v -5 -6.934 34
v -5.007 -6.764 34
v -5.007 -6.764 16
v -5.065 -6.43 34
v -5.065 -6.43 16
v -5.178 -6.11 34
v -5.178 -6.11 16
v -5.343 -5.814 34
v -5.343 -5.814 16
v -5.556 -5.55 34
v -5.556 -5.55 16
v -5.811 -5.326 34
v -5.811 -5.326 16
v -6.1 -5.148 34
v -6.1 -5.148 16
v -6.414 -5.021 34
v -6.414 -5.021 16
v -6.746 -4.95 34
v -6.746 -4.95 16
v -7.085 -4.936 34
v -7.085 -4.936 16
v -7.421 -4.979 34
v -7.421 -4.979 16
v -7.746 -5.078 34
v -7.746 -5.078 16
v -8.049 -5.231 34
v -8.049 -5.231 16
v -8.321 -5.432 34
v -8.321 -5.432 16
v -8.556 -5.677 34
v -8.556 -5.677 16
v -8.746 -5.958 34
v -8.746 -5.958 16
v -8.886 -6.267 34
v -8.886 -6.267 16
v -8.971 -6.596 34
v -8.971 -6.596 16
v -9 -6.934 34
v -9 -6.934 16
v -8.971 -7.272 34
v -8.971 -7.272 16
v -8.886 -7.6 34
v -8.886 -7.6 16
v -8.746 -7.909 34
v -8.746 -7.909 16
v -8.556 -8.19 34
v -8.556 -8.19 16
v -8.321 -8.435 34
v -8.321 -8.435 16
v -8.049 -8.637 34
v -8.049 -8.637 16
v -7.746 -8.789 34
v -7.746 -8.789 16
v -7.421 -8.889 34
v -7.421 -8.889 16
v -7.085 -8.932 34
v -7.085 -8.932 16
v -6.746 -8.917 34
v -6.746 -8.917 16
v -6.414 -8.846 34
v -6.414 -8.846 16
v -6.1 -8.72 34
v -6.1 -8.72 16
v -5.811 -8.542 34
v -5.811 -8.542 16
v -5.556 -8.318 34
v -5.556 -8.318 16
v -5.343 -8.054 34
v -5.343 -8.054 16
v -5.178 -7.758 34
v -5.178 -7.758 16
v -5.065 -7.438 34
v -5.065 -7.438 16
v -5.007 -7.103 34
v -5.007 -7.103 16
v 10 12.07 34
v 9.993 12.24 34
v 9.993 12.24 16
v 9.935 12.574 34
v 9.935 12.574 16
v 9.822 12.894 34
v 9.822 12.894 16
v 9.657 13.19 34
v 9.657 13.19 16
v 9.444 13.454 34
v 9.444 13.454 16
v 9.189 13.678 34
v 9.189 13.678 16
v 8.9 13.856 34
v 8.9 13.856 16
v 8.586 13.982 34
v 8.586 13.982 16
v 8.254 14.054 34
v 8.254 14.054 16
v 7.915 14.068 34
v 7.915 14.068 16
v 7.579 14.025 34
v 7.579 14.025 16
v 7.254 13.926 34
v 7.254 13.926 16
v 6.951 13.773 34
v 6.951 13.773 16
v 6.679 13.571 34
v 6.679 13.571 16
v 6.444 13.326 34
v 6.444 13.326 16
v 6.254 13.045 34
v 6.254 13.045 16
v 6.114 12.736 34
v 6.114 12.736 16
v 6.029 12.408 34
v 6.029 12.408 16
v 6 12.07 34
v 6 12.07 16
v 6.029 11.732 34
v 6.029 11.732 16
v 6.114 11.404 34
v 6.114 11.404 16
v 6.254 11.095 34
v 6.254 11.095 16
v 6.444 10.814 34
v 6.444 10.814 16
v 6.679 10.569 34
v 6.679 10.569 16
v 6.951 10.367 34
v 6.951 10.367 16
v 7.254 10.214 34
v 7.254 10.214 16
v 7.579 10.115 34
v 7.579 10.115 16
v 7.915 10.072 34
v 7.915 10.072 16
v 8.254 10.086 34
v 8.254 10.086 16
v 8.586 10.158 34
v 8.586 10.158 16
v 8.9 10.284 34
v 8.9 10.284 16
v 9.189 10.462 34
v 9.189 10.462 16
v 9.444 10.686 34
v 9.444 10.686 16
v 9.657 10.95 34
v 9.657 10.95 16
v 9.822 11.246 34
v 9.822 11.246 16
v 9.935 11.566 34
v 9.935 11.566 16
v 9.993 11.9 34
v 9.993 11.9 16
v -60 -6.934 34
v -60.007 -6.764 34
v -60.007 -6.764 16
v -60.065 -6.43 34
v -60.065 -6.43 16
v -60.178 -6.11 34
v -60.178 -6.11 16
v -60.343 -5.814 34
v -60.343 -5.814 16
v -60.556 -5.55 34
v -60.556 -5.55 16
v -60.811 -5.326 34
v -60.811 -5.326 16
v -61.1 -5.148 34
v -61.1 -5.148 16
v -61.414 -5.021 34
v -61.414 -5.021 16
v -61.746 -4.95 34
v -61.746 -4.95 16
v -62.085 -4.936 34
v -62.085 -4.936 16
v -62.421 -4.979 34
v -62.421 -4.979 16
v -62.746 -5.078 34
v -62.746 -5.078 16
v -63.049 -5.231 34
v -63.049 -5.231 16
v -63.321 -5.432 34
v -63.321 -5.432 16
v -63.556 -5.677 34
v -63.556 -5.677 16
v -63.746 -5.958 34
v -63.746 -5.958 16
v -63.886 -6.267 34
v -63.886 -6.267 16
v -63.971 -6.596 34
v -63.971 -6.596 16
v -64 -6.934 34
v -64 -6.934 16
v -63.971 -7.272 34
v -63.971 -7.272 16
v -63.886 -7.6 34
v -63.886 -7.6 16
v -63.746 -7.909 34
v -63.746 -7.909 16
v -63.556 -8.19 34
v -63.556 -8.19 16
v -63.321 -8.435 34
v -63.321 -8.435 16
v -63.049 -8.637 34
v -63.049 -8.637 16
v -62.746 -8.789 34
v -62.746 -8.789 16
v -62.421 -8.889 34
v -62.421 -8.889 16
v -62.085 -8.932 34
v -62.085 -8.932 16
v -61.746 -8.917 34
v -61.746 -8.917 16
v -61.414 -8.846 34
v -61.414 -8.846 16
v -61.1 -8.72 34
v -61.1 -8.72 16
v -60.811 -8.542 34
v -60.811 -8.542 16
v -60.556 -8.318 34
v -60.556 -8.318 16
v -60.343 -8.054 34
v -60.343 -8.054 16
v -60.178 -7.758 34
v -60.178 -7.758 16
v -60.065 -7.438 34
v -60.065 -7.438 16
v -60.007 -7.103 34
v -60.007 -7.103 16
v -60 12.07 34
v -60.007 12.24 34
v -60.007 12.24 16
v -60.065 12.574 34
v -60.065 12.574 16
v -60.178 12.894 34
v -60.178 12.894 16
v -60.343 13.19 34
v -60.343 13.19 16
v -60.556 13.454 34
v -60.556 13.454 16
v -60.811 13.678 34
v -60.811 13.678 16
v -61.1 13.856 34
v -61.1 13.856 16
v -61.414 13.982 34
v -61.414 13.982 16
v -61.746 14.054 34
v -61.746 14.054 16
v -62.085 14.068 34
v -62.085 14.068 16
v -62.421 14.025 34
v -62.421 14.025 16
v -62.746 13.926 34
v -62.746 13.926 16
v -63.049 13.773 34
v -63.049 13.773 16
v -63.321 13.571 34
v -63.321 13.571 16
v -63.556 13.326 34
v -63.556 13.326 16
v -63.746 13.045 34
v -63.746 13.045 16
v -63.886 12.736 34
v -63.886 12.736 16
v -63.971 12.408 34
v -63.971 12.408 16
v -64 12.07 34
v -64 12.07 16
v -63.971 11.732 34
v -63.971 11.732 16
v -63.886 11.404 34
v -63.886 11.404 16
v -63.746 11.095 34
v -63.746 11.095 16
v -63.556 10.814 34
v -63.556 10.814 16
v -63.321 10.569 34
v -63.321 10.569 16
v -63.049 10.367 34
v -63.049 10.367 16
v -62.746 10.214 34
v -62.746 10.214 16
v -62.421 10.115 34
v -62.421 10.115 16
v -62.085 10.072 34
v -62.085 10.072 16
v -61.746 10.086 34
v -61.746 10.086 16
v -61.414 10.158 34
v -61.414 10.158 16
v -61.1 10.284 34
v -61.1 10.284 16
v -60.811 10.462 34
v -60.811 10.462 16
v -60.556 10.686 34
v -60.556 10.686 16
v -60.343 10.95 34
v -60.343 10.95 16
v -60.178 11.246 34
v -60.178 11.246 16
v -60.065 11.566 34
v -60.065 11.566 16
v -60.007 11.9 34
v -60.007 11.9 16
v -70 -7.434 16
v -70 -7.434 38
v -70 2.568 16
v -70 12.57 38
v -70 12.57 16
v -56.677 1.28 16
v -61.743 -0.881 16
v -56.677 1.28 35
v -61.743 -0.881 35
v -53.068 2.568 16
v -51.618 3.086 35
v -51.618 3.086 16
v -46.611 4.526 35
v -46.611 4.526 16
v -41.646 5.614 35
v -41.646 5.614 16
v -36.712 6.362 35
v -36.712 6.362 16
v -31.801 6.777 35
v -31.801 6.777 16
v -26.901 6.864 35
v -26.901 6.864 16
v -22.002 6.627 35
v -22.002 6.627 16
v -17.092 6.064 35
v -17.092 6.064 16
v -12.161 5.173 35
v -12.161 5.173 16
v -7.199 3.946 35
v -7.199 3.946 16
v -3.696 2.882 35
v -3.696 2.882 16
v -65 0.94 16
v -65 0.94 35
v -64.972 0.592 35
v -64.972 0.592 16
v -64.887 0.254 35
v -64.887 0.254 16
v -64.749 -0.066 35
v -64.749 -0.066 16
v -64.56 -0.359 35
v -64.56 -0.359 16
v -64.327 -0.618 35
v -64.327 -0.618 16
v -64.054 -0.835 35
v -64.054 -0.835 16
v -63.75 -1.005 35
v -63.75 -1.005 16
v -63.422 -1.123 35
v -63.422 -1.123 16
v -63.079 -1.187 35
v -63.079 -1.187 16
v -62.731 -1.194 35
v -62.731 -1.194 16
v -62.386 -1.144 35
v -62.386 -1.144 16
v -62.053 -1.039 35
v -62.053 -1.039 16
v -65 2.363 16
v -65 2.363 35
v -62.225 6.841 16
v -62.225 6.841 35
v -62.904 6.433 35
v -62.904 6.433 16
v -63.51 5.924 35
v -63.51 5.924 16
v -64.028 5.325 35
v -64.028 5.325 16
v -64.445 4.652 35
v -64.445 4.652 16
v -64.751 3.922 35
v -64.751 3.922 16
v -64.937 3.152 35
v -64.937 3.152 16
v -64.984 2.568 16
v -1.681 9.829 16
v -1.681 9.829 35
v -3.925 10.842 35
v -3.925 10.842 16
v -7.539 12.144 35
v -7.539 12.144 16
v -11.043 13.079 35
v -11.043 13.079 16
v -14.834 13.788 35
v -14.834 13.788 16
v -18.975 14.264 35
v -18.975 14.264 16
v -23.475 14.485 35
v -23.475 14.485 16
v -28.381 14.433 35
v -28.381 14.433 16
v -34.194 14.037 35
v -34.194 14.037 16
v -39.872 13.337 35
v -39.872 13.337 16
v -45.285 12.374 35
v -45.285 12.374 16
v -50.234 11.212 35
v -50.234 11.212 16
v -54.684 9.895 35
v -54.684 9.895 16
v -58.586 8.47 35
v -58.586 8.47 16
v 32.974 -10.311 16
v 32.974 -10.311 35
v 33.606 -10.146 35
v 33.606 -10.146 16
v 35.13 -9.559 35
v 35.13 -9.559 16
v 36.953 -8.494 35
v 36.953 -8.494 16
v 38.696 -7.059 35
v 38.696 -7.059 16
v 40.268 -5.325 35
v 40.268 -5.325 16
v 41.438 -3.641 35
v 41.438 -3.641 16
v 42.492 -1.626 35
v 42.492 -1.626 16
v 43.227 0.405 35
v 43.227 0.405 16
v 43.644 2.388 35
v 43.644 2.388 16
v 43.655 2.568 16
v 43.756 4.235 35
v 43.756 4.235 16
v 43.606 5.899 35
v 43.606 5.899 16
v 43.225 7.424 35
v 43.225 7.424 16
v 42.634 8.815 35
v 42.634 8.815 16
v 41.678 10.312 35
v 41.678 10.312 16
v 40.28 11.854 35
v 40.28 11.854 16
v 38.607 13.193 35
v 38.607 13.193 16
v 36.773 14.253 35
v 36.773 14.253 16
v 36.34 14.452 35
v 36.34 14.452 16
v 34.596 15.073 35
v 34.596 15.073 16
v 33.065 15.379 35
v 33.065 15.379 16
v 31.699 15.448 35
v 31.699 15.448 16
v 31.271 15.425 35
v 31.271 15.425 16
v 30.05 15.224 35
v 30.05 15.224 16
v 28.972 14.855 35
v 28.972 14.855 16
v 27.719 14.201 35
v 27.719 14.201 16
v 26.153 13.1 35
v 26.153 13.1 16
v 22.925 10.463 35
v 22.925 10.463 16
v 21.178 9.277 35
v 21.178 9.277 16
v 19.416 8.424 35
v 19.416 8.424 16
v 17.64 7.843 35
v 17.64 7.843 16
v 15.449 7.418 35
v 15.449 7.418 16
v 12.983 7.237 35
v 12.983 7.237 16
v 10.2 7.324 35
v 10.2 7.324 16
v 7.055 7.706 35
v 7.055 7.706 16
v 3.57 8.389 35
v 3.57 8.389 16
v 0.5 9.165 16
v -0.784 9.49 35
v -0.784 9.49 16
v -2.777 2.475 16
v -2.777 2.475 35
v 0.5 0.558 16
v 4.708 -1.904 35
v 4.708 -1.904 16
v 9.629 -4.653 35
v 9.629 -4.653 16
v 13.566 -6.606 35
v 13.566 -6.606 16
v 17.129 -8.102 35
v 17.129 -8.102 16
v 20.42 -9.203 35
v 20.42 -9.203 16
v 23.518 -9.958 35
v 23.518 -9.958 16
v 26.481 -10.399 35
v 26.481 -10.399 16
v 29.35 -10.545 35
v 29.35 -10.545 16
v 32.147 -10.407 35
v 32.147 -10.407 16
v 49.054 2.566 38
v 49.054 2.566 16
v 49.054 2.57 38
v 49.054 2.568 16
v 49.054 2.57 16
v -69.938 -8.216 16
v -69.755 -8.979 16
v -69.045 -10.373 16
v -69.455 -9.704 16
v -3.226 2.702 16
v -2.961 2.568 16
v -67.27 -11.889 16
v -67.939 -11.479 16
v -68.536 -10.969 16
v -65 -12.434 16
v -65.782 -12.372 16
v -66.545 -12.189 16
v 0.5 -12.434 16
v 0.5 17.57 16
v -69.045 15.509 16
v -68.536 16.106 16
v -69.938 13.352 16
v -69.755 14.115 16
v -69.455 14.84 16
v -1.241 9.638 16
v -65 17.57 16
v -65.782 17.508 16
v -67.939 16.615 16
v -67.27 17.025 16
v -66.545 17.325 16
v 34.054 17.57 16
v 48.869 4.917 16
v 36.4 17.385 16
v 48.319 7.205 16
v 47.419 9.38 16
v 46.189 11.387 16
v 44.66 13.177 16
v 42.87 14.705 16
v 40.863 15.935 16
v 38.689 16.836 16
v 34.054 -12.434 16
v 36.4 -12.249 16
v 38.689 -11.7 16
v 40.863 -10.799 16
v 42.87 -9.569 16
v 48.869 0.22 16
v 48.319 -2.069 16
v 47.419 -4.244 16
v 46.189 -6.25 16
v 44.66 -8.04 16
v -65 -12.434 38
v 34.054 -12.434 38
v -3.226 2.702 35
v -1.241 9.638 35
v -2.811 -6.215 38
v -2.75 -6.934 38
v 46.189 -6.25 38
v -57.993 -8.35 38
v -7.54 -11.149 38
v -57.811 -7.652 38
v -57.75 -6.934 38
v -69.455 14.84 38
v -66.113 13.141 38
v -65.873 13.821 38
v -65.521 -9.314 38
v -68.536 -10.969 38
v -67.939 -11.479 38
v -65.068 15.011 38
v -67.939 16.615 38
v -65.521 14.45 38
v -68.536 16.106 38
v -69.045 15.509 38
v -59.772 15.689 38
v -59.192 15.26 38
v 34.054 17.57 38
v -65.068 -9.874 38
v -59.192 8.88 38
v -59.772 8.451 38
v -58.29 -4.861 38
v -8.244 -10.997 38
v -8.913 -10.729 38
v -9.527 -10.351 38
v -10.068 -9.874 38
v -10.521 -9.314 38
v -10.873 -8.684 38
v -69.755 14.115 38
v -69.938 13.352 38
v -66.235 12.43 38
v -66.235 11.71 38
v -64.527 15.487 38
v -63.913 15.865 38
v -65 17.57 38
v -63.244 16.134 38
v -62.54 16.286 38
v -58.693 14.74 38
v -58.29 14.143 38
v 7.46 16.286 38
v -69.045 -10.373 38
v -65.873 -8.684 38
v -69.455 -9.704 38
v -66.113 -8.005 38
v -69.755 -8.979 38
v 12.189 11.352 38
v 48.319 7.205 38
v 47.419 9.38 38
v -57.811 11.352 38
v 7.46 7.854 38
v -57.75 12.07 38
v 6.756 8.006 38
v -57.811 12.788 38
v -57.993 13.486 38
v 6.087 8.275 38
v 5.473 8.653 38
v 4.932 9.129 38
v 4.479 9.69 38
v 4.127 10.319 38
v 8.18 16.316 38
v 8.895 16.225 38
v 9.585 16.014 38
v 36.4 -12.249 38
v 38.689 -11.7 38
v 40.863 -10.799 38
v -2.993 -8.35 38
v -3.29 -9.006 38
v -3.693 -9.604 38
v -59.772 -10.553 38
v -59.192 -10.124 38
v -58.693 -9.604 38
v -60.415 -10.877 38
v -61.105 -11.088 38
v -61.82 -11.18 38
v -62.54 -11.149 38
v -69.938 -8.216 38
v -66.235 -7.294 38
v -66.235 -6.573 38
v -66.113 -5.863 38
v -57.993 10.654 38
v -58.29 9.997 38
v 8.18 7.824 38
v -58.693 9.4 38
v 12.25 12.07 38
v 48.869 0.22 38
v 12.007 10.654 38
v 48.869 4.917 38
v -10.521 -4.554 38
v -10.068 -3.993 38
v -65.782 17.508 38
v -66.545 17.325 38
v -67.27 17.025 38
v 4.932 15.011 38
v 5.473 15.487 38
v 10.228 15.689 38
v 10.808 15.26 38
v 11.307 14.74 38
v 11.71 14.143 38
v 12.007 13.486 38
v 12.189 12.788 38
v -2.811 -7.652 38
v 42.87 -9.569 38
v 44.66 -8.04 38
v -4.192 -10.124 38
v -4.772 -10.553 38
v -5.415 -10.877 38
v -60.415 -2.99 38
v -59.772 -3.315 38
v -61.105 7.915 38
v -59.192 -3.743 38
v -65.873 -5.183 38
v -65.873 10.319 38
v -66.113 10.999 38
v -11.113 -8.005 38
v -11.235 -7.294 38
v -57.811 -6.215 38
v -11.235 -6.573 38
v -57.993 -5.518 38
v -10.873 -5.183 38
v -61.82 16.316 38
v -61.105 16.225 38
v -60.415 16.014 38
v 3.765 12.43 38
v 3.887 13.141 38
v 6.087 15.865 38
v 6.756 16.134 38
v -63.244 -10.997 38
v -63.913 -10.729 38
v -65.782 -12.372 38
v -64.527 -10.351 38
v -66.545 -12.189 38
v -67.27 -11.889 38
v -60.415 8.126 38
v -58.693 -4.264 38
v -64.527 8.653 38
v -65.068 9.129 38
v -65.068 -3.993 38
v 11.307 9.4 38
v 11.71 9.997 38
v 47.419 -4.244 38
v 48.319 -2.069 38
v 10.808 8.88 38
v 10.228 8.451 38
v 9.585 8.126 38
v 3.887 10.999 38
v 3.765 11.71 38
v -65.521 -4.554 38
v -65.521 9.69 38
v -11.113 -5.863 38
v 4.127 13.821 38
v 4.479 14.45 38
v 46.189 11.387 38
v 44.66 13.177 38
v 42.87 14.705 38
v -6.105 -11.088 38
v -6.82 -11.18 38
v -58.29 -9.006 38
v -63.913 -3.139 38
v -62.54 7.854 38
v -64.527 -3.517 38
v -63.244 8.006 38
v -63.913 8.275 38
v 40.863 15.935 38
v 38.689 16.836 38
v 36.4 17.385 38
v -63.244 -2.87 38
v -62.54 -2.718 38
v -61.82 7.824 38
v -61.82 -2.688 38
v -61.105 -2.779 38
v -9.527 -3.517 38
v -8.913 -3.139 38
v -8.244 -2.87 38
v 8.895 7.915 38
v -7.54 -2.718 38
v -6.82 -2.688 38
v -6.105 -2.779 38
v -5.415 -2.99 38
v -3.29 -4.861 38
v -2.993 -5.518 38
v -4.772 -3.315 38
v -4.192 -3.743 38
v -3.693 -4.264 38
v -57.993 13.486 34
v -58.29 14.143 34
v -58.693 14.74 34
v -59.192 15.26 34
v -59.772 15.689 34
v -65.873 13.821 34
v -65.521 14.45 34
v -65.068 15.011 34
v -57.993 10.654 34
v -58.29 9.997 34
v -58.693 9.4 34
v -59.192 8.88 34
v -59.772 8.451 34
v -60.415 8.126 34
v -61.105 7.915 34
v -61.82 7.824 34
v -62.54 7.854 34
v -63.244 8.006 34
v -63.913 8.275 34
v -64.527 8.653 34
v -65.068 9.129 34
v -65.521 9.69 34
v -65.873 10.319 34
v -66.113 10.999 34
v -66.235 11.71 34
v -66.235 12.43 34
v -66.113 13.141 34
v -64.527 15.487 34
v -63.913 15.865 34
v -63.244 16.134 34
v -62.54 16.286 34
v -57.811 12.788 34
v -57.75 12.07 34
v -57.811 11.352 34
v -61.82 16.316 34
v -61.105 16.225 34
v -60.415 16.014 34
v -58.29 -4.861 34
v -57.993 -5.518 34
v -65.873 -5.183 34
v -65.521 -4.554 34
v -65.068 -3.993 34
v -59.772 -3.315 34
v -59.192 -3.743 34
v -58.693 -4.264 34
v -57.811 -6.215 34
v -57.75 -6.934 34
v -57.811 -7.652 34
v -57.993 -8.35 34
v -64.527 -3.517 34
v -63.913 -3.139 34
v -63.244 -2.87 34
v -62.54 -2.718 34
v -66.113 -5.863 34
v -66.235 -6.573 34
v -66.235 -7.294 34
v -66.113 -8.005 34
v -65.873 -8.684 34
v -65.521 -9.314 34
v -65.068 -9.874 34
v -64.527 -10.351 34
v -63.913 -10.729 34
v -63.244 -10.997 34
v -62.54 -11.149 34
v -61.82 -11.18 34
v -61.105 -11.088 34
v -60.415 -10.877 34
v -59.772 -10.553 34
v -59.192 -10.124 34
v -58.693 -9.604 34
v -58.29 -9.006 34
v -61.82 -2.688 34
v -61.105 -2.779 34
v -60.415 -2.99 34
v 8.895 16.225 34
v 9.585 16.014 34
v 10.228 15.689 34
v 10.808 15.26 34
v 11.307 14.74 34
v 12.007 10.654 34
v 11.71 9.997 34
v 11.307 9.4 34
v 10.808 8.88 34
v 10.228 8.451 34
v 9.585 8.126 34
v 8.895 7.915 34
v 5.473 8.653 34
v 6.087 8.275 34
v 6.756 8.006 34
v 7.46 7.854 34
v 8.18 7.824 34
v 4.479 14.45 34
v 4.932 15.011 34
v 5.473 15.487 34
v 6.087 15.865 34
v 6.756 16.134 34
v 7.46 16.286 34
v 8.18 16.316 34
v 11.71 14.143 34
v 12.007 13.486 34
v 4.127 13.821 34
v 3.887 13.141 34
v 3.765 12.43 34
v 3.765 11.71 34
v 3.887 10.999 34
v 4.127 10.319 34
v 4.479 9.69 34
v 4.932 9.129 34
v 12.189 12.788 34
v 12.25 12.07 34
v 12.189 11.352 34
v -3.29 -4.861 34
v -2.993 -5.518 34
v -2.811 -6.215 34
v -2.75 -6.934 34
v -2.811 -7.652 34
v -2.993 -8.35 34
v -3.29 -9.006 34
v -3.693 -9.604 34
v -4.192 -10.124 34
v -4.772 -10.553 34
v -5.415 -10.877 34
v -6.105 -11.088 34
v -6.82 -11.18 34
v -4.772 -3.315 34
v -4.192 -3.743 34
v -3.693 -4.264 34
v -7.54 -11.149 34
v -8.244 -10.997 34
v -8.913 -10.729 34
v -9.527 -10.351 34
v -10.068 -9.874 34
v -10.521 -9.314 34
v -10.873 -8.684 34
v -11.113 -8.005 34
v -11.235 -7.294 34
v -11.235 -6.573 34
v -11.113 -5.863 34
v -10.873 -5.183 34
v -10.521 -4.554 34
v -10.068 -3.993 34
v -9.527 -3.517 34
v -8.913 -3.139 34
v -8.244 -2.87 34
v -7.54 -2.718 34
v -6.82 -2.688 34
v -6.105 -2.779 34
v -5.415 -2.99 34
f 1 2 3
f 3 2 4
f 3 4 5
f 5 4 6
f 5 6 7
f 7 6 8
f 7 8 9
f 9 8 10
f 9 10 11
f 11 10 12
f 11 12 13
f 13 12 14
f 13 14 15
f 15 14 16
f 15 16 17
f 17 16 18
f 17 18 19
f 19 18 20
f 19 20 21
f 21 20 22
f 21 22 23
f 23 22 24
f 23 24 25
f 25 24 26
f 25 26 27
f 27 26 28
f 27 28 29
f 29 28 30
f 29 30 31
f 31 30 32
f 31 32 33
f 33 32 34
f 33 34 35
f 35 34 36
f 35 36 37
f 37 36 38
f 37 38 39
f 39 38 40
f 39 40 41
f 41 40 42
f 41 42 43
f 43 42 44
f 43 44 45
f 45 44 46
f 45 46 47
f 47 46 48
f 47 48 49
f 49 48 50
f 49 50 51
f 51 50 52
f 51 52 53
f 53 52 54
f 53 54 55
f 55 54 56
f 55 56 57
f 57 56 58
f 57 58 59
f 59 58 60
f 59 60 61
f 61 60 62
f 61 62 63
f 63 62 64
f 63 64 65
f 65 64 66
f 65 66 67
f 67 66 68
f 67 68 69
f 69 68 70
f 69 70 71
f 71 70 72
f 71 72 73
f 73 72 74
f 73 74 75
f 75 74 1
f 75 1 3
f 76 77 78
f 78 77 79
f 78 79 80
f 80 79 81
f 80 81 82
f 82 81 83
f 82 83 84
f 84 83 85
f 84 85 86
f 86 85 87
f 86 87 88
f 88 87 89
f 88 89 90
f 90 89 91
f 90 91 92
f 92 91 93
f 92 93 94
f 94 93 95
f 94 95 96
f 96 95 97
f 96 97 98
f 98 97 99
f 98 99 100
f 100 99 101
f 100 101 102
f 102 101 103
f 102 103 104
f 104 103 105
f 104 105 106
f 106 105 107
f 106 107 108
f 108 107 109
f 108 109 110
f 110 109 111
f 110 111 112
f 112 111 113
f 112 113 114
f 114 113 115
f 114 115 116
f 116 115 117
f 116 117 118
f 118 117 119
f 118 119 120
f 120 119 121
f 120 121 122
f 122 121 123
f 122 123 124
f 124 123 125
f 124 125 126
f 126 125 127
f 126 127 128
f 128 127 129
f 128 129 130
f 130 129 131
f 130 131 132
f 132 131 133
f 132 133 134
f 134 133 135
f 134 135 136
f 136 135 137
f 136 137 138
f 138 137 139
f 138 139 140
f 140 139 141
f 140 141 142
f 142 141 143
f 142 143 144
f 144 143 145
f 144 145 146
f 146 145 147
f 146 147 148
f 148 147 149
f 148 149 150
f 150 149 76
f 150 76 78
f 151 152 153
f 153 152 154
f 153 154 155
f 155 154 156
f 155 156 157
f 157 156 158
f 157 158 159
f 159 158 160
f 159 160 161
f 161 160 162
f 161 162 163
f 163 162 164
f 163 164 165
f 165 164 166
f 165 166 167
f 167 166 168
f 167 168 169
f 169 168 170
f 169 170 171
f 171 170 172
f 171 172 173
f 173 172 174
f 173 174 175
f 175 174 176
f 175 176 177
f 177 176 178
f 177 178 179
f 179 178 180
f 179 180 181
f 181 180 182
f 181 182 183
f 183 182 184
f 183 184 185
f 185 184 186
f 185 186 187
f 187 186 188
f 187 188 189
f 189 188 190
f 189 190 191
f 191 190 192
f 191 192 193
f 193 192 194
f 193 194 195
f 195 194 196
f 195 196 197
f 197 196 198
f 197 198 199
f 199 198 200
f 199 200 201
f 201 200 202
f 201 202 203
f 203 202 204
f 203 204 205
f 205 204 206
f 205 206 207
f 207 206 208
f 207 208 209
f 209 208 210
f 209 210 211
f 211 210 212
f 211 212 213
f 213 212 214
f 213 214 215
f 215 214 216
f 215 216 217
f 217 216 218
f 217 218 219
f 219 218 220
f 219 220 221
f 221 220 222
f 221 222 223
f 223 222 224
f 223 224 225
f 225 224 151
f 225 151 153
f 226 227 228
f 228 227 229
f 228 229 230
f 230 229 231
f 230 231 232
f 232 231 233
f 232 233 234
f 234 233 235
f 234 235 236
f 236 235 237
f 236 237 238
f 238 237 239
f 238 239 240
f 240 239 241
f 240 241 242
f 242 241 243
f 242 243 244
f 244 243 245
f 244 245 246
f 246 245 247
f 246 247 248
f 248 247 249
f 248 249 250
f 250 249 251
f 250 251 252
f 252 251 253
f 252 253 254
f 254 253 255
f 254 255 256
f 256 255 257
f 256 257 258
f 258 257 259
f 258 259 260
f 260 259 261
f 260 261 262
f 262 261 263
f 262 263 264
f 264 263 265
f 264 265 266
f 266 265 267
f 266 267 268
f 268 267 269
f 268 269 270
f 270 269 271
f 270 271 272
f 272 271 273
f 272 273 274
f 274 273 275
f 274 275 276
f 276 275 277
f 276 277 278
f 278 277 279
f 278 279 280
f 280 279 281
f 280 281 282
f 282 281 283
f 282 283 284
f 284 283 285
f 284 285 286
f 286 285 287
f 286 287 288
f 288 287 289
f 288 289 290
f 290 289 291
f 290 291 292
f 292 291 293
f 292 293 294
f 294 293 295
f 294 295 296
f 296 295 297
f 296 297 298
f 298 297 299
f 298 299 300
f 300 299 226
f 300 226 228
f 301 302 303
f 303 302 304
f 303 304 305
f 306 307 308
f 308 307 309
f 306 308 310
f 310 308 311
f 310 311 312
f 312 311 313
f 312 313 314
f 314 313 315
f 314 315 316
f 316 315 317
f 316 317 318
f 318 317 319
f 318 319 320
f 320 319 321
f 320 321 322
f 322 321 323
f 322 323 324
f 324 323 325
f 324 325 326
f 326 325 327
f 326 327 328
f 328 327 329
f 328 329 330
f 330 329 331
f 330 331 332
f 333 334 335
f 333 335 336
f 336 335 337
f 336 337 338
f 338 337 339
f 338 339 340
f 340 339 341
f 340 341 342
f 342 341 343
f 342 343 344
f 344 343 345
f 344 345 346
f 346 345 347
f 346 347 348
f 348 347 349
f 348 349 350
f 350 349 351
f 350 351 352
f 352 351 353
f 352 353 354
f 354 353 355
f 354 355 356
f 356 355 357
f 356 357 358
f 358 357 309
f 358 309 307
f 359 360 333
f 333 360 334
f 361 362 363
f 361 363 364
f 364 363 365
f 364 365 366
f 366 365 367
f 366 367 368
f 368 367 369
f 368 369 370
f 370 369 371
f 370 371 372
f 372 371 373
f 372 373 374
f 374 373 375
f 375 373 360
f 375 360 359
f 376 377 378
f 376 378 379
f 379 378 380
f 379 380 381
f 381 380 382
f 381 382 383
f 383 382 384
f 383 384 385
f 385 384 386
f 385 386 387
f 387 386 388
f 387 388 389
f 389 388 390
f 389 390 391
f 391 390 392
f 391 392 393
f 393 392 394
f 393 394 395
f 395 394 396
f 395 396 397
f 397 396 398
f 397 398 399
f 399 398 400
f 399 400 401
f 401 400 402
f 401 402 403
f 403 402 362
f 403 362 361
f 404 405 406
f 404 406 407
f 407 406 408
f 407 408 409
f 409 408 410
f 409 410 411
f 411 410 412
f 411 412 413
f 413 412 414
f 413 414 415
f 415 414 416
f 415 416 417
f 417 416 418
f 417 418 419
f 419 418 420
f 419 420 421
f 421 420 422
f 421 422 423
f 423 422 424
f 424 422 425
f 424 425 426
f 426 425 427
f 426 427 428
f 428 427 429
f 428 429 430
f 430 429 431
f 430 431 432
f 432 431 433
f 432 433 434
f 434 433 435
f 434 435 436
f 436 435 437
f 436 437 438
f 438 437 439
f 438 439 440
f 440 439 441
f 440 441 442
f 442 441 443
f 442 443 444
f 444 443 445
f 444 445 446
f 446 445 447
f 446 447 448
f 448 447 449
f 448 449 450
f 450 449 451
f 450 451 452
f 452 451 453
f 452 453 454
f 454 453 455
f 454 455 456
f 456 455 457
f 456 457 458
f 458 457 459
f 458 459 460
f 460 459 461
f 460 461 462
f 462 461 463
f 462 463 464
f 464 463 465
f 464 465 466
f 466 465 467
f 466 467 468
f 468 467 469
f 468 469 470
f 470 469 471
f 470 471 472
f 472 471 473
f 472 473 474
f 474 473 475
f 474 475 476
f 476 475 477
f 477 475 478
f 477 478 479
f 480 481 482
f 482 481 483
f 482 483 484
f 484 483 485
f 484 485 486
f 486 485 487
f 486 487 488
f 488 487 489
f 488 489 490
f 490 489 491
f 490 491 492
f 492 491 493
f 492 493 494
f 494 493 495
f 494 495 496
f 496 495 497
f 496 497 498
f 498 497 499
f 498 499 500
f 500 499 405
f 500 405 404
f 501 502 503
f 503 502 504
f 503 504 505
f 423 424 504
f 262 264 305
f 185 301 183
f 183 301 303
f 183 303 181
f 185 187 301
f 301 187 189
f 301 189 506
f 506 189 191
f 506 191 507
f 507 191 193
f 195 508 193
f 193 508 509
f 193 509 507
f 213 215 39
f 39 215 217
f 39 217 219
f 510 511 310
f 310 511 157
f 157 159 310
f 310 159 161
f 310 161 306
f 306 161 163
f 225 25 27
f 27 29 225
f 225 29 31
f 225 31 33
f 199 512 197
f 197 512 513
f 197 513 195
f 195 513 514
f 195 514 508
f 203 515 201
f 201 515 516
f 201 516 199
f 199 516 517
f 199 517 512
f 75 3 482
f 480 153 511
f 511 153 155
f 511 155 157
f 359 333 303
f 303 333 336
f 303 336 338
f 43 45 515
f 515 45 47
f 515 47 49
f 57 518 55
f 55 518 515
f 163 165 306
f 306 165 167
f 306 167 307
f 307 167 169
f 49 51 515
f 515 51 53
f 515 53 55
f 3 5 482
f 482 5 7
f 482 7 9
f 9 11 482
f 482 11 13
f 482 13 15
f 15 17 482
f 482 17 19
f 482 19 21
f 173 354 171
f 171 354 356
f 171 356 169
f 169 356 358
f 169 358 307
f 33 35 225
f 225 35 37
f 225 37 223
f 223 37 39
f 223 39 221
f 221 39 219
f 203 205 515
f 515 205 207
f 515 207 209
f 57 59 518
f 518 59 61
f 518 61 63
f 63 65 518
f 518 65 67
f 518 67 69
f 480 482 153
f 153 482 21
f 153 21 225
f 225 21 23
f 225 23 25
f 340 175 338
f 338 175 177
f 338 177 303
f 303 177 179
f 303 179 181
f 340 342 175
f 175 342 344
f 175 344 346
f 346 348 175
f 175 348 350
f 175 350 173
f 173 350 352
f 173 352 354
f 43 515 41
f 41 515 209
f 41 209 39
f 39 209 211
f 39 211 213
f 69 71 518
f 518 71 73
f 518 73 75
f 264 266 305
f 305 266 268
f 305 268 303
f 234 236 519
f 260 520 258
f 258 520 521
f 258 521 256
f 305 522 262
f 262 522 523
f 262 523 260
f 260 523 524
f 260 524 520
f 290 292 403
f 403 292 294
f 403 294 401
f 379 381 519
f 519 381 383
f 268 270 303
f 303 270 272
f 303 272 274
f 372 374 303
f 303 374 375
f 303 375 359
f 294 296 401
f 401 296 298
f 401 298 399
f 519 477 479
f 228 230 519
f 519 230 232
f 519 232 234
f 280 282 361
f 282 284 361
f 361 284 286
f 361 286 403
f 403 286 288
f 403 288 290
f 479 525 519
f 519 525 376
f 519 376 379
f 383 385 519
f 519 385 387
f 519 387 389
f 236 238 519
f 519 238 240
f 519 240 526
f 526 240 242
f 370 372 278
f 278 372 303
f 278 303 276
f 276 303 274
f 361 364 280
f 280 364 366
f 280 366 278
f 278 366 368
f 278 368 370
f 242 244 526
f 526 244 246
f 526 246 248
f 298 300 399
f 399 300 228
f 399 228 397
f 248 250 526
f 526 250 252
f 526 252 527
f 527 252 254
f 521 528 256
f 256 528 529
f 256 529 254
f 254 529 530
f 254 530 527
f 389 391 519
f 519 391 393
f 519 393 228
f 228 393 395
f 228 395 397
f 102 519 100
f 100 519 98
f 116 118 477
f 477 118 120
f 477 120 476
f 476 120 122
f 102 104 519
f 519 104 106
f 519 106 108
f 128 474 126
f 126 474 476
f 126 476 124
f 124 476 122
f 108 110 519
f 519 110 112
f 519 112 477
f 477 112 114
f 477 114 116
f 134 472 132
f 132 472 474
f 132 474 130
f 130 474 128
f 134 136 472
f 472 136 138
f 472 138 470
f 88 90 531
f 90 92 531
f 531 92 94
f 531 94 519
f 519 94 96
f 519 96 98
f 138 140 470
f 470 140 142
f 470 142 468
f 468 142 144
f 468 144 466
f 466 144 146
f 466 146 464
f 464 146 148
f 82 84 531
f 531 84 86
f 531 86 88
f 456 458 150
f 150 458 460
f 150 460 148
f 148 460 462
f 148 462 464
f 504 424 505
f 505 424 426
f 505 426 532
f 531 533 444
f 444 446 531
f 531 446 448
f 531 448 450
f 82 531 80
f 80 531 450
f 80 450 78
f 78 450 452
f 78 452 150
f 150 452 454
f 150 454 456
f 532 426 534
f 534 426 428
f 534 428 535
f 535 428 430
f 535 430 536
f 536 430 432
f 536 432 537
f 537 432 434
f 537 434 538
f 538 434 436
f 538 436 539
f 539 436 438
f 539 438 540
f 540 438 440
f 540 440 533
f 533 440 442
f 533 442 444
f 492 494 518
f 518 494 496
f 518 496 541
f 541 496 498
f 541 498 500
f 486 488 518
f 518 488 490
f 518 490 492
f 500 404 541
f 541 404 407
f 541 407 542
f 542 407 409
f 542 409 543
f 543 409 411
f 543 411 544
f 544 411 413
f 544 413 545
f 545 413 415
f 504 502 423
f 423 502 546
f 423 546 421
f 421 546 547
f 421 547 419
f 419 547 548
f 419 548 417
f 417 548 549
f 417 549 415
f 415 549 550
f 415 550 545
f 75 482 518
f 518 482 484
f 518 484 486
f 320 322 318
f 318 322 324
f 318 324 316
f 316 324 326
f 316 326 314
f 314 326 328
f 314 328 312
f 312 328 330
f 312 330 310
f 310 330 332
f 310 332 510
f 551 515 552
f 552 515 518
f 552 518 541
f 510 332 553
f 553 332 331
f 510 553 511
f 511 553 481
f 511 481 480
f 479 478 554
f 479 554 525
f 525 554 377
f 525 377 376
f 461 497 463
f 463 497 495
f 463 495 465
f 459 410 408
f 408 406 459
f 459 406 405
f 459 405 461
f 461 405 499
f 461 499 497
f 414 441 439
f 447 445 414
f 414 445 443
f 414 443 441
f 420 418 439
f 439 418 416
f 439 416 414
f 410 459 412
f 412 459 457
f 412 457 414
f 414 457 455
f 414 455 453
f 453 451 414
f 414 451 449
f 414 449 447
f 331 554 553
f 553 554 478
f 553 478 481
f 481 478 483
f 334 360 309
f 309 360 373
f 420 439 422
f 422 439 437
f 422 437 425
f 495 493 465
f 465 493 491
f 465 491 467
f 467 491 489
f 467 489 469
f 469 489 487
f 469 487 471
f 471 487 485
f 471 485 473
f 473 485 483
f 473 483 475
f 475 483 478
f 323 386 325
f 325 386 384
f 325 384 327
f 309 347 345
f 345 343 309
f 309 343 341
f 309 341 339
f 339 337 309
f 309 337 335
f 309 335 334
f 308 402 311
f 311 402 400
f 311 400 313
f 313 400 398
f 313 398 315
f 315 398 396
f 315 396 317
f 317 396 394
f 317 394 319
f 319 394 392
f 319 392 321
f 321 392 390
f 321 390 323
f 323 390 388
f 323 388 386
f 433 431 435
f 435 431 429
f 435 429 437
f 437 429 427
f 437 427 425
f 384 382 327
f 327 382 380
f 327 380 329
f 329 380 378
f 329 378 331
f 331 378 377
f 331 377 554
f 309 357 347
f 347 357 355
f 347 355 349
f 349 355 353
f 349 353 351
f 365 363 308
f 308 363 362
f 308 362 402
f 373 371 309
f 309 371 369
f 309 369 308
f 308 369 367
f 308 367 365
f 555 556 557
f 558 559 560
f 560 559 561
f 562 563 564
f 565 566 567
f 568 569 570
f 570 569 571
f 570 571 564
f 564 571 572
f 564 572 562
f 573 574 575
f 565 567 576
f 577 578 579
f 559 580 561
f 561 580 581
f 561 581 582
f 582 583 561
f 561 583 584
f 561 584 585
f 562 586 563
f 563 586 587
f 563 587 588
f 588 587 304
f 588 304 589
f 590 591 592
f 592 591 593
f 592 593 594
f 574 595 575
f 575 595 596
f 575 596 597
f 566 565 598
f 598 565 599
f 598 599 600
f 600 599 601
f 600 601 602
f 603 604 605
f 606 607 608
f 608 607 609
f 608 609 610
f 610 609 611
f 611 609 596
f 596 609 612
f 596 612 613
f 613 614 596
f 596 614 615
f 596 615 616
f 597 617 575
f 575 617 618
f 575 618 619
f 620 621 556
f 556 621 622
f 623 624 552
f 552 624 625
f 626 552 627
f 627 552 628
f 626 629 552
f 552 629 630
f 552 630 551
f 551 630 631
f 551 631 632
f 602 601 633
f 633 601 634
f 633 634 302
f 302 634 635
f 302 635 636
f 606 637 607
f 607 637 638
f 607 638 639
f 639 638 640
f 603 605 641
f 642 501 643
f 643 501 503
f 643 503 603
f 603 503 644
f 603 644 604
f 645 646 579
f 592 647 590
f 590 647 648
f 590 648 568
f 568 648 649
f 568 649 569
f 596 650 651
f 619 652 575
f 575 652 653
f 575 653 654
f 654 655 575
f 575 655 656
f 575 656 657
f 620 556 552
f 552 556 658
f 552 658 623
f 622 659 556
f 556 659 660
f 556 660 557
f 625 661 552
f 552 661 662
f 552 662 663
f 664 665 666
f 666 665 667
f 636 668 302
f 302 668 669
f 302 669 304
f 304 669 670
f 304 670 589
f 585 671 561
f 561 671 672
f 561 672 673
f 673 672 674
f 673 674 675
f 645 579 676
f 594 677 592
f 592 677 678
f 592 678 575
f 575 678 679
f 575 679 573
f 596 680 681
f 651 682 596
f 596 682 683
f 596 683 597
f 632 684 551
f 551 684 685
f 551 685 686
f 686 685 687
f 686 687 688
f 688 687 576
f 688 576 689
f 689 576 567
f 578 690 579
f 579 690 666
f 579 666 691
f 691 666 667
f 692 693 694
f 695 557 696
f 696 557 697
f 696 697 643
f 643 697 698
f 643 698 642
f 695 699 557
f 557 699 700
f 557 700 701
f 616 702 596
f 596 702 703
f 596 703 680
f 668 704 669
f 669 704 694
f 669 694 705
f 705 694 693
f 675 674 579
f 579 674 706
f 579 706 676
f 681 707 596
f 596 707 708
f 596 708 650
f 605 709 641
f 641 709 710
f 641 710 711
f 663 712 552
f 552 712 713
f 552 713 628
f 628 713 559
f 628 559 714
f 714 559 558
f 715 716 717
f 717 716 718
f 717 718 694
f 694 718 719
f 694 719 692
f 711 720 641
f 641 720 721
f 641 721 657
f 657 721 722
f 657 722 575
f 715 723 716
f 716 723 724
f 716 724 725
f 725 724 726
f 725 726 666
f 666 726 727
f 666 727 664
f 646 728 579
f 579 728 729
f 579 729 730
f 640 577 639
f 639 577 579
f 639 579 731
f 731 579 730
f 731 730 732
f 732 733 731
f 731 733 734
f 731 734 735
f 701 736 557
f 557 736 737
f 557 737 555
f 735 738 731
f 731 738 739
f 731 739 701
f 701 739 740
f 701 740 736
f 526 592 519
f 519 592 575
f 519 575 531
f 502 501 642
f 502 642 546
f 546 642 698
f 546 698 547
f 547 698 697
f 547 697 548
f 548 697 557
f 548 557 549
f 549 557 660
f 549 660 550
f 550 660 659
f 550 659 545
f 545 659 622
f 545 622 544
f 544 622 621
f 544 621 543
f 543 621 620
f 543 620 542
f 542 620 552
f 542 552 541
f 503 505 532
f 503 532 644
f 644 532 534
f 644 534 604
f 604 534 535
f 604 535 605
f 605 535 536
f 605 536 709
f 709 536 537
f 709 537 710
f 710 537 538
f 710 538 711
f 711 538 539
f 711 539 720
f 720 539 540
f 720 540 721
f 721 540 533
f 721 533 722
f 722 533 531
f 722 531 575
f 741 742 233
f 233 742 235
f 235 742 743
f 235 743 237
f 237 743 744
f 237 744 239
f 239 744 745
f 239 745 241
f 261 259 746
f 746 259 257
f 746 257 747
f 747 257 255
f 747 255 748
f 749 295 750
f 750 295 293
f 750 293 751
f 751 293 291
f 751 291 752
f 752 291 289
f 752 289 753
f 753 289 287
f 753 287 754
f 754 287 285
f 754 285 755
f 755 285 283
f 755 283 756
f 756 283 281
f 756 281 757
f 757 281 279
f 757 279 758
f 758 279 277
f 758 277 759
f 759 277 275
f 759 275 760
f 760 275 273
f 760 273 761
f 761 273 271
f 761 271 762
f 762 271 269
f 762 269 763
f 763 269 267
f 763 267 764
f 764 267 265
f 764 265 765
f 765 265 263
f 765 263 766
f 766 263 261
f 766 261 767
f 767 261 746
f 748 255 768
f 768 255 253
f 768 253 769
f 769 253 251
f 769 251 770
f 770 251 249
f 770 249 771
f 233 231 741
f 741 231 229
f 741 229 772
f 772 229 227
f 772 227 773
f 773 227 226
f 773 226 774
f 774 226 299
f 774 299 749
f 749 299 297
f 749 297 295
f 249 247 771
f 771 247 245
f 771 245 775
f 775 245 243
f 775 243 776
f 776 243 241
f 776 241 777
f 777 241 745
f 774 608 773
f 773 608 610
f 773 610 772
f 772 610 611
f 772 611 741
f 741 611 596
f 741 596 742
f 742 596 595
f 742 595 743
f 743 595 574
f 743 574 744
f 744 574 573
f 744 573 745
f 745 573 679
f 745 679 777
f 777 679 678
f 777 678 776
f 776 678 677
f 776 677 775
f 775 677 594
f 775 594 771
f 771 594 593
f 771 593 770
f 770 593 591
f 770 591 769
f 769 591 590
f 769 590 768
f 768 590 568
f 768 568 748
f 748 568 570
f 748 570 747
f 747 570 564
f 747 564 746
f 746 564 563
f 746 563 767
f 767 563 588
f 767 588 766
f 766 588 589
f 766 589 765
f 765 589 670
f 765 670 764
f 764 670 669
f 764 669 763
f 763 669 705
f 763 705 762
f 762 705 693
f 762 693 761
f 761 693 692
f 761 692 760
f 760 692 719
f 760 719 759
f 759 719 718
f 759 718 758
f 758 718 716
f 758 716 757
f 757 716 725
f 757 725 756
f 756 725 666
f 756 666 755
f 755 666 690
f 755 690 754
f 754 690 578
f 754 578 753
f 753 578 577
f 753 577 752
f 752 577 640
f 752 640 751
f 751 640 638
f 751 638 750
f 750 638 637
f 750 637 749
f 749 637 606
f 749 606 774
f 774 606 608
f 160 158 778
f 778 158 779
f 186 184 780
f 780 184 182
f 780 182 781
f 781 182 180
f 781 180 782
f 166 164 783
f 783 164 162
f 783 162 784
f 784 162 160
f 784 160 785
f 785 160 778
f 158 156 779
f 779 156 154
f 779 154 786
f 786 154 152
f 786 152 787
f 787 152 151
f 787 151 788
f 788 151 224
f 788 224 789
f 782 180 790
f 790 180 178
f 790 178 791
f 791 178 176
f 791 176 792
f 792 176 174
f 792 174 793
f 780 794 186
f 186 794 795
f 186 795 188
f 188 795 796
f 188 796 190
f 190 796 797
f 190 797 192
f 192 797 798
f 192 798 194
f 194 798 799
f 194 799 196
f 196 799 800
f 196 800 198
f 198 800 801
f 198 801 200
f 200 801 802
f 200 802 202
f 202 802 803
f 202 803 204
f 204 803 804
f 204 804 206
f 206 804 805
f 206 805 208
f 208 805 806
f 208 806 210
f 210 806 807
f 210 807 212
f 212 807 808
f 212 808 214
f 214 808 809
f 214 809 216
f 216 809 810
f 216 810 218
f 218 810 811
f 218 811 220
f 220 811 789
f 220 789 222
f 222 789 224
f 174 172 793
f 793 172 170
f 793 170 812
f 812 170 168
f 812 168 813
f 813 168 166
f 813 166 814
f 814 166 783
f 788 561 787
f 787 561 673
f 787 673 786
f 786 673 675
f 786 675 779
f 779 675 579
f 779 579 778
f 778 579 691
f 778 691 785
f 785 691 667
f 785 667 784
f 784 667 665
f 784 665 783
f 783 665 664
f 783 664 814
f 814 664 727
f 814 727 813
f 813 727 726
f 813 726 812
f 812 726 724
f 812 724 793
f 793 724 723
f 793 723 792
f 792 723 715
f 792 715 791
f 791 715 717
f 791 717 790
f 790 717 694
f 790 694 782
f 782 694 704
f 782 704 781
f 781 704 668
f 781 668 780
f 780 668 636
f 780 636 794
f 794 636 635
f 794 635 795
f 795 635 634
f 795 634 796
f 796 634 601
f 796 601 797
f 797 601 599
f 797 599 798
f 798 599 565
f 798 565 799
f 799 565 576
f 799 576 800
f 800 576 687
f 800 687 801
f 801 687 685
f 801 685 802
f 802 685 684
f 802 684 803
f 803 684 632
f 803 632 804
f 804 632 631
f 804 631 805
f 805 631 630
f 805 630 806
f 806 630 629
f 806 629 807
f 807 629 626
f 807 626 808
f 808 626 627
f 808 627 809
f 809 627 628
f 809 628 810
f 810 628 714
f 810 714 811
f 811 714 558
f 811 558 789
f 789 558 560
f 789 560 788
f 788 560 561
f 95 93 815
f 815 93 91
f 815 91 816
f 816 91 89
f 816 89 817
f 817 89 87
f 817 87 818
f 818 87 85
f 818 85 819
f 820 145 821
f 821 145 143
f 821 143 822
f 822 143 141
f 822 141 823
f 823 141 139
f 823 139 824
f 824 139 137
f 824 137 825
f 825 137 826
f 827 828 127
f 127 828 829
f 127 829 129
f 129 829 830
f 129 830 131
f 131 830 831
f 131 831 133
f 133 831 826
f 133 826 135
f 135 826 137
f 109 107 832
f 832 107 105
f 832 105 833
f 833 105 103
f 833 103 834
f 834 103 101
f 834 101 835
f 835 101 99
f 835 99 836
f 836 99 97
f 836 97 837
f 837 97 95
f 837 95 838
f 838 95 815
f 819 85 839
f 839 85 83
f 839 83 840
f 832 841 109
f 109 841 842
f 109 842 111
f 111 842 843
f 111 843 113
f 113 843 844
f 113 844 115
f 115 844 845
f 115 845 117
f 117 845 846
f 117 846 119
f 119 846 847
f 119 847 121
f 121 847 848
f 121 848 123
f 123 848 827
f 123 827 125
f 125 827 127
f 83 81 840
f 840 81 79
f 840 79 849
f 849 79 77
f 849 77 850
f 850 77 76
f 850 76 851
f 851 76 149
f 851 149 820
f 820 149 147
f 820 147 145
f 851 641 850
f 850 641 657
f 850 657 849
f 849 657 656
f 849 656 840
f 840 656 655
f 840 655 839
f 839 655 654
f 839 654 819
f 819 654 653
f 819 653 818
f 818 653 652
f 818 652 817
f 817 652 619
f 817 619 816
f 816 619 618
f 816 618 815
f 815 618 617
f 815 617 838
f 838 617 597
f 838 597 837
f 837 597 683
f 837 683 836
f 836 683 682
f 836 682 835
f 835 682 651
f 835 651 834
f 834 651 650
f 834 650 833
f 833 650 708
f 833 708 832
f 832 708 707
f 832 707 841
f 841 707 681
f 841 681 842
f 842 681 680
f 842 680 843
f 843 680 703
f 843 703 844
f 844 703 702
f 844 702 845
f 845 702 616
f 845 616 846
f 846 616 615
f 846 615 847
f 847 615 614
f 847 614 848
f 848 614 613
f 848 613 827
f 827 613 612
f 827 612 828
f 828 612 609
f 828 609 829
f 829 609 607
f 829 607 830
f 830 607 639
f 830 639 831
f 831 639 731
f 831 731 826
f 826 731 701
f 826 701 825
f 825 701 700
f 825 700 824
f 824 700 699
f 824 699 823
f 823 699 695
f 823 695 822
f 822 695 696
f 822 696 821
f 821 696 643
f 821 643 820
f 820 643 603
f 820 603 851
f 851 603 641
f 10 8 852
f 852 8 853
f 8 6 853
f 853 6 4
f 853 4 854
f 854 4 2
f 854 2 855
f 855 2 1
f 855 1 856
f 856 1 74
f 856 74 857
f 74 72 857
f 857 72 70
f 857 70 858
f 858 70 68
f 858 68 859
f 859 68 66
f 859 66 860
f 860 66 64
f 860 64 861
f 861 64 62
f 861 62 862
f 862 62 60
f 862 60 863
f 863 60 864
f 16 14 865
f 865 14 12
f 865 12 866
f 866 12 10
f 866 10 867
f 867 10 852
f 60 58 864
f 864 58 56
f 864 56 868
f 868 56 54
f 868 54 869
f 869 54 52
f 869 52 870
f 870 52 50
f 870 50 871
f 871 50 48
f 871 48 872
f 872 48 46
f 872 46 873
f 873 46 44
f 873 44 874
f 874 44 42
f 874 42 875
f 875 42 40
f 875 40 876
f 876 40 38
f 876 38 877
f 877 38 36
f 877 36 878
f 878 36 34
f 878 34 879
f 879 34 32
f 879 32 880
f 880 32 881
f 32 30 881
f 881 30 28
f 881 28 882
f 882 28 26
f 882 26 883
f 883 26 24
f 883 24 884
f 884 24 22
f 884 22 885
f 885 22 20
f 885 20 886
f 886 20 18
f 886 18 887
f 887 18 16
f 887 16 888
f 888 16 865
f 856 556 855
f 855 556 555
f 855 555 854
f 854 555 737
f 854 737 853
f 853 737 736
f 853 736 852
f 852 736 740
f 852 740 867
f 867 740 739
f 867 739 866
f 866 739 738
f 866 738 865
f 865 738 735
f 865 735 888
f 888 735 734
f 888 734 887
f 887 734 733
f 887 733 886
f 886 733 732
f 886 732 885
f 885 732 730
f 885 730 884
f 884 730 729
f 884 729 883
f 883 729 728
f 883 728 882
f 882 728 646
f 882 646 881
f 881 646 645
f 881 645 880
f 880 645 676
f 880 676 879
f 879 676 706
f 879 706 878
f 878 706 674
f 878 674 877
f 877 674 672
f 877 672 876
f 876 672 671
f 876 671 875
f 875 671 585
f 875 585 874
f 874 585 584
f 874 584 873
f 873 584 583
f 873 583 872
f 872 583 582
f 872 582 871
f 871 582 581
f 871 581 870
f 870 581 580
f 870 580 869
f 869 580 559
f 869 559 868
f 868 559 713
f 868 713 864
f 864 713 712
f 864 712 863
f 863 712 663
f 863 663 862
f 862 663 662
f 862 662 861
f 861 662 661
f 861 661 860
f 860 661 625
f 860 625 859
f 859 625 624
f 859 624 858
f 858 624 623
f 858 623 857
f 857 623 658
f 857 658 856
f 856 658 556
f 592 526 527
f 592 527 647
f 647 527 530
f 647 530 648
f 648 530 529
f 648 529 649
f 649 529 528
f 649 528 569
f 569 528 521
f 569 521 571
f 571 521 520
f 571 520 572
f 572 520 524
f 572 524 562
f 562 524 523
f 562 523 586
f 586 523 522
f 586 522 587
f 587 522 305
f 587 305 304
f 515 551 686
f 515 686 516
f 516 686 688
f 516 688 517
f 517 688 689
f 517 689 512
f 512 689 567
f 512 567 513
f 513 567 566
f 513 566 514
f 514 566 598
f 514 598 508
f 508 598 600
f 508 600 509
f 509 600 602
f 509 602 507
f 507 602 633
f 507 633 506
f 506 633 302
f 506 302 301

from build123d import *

# Parameters (mm, degrees)
SKETCH_1_W          = 140
SKETCH_1_H          = 40
EXTRUDE_1_DEPTH     = 35
CUT_EXTRUDE_START   = -25
CUT_EXTRUDE_1_DEPTH = 25
SKETCH_3_W          = 20.946458808
SKETCH_3_H          = 40
CUT_EXTRUDE_2_DEPTH = 50
SKETCH_4_W          = 119.053541192
SKETCH_4_H          = 40
CUT_EXTRUDE_3_DEPTH = 16
SKETCH_5_W          = 119.053541192
SKETCH_5_H          = 7.566301572
CUT_EXTRUDE_4_DEPTH = 33
FILLET_1_R          = 5
SKETCH_6_W          = 119.053541192
SKETCH_6_H          = 32.433698428
EXTRUDE_2_DEPTH     = 3
SKETCH_7_W          = 119.053541192
SKETCH_7_H          = 2.43
CUT_EXTRUDE_5_DEPTH = 25
FILLET_2_R          = 15
SKETCH_8_R          = 2
CUT_EXTRUDE_6_DEPTH = 25
SKETCH_9_R          = 4.25
CUT_EXTRUDE_7_DEPTH = 4
FILLET_3_R          = 5


# Read off the part's stored shape, not the designer's step: 切除-拉伸1
with BuildPart() as part:
    # 草图1 → 凸台-拉伸1 (new body)
    with BuildSketch(Plane.XY):
        Rectangle(SKETCH_1_W, SKETCH_1_H)
    extrude(amount=EXTRUDE_1_DEPTH)

    # 切除-拉伸1 outline → 切除-拉伸1 (cut)
    with BuildSketch(Plane.XY.offset(35).offset(CUT_EXTRUDE_START)):
        with BuildLine():
            ThreePointArc((-65, 0.939701666), (-63.90540849, -0.926084141), (-61.742713718, -0.880933602))
            add(Edge.make_bspline(
                [(-61.742713718, -0.880933602), (-32.663633491, 12.545599653), (-3.21353823, 2.722880029)],
                knots=[0, 0, 0, 1, 1, 1], degree=2))
            add(Edge.make_bspline(
                [(-3.21353823, 2.722880029), (7.778991577, -3.486736981), (19.521763095, -12.075038105), (32.974458778, -10.310789055)],
                knots=[0, 0, 0, 0, 1, 1, 1, 1], degree=3))
            add(Edge.make_bspline(
                [(-1.265226953, 9.621082728), (5.319961167, 7.826511536), (19.072649984, 4.273931772), (30.116773563, 18.680420492), (50.141031873, 7.903163107), (40.152384038, -8.700046956), (32.974458778, -10.310789055)],
                knots=[0, 0, 0, 0, 0.327114299, 0.472643013, 0.672292196, 1, 1, 1, 1], degree=3))
            add(Edge.make_bspline(
                [(-62.225486261, 6.840593766), (-61.950401652, 6.977325912), (-60.645663364, 7.609645854), (-56.787258029, 9.270913685), (-50.206414035, 11.371256832), (-41.494158434, 13.209404155), (-32.600965324, 14.299233241), (-23.90205386, 14.645800276), (-15.41426271, 14.074279585), (-7.837972032, 12.457111584), (-3.215945129, 10.610499943), (-1.265226953, 9.621082728)],
                knots=[0.117371432, 0.117371432, 0.117371432, 0.117371432, 0.12919832, 0.172962492, 0.2758611, 0.378759707, 0.481658315, 0.584556923, 0.687455531, 0.790354139, 0.871867558, 0.871867558, 0.871867558, 0.871867558], degree=3))
            ThreePointArc((-62.225486261, 6.840593766), (-64.250143015, 4.996865242), (-65, 2.363182583))
            Line((-65, 2.363182583), (-65, 0.939701666))
        make_face()
    extrude(amount=CUT_EXTRUDE_1_DEPTH, mode=Mode.SUBTRACT)

    # 草图3 → 切除-拉伸2 (cut)
    with BuildSketch(Plane.XY.offset(35)):
        with Locations((59.526770596, 0)):
            Rectangle(SKETCH_3_W, SKETCH_3_H)
    extrude(amount=-CUT_EXTRUDE_2_DEPTH, mode=Mode.SUBTRACT)

    # 草图4 → 切除-拉伸3 (cut)
    with BuildSketch(Plane(origin=(0, 0, 0), x_dir=(-1, 0, 0), z_dir=(0, 0, -1))):
        with Locations((10.473229404, 0)):
            Rectangle(SKETCH_4_W, SKETCH_4_H)
    extrude(amount=-CUT_EXTRUDE_3_DEPTH, mode=Mode.SUBTRACT)

    # 草图5 → 切除-拉伸4 (cut)
    with BuildSketch(Plane.XY.offset(35)):
        with Locations((-10.473229404, -16.216849214)):
            Rectangle(SKETCH_5_W, SKETCH_5_H)
    extrude(amount=-CUT_EXTRUDE_4_DEPTH, mode=Mode.SUBTRACT)

    # 圆角1
    fillet_1_edges = [part.edges().sort_by_distance(p)[0] for p in [
        (-3.21353823, 2.722880029, 25.5),
        (-1.265226953, 9.621082728, 25.5),
    ]]
    fillet(fillet_1_edges, radius=FILLET_1_R)

    # 草图6 → 凸台-拉伸2 (add)
    with BuildSketch(Plane.XY.offset(35)):
        with Locations((-10.473229404, 3.783150786)):
            Rectangle(SKETCH_6_W, SKETCH_6_H)
    extrude(amount=EXTRUDE_2_DEPTH)

    # 草图7 → 切除-拉伸5 (cut)
    with BuildSketch(Plane(origin=(0, 0, 16), x_dir=(-1, 0, 0), z_dir=(0, 0, -1))):
        with Locations((10.473229404, 18.785)):
            Rectangle(SKETCH_7_W, SKETCH_7_H)
    extrude(amount=-CUT_EXTRUDE_5_DEPTH, mode=Mode.SUBTRACT)

    # 圆角2
    fillet_2_edges = [part.edges().sort_by_distance(p)[0] for p in [
        (49.053541192, 17.57, 27),
        (49.053541192, -12.433698428, 27),
    ]]
    fillet(fillet_2_edges, radius=FILLET_2_R)

    # 草图8 → 切除-拉伸6 (cut)
    with BuildSketch(Plane(origin=(0, 0, 16), x_dir=(-1, 0, 0), z_dir=(0, 0, -1))):
        with Locations((62, 12.07)):
            Circle(SKETCH_8_R)
        with Locations((-8, 12.07)):
            Circle(SKETCH_8_R)
        with Locations((62, -6.933698428)):
            Circle(SKETCH_8_R)
        with Locations((7, -6.933698428)):
            Circle(SKETCH_8_R)
    extrude(amount=-CUT_EXTRUDE_6_DEPTH, mode=Mode.SUBTRACT)

    # 草图9 → 切除-拉伸7 (cut)
    with BuildSketch(Plane.XY.offset(38)):
        with Locations((-62, 12.07)):
            Circle(SKETCH_9_R)
        with Locations((-62, -6.933698428)):
            Circle(SKETCH_9_R)
        with Locations((8, 12.07)):
            Circle(SKETCH_9_R)
        with Locations((-7, -6.933698428)):
            Circle(SKETCH_9_R)
    extrude(amount=-CUT_EXTRUDE_7_DEPTH, mode=Mode.SUBTRACT)

    # 圆角3
    fillet_3_edges = [part.edges().sort_by_distance(p)[0] for p in [
        (-70, 17.57, 27),
        (-70, -12.433698428, 27),
    ]]
    fillet(fillet_3_edges, radius=FILLET_3_R)


solid = part.part
